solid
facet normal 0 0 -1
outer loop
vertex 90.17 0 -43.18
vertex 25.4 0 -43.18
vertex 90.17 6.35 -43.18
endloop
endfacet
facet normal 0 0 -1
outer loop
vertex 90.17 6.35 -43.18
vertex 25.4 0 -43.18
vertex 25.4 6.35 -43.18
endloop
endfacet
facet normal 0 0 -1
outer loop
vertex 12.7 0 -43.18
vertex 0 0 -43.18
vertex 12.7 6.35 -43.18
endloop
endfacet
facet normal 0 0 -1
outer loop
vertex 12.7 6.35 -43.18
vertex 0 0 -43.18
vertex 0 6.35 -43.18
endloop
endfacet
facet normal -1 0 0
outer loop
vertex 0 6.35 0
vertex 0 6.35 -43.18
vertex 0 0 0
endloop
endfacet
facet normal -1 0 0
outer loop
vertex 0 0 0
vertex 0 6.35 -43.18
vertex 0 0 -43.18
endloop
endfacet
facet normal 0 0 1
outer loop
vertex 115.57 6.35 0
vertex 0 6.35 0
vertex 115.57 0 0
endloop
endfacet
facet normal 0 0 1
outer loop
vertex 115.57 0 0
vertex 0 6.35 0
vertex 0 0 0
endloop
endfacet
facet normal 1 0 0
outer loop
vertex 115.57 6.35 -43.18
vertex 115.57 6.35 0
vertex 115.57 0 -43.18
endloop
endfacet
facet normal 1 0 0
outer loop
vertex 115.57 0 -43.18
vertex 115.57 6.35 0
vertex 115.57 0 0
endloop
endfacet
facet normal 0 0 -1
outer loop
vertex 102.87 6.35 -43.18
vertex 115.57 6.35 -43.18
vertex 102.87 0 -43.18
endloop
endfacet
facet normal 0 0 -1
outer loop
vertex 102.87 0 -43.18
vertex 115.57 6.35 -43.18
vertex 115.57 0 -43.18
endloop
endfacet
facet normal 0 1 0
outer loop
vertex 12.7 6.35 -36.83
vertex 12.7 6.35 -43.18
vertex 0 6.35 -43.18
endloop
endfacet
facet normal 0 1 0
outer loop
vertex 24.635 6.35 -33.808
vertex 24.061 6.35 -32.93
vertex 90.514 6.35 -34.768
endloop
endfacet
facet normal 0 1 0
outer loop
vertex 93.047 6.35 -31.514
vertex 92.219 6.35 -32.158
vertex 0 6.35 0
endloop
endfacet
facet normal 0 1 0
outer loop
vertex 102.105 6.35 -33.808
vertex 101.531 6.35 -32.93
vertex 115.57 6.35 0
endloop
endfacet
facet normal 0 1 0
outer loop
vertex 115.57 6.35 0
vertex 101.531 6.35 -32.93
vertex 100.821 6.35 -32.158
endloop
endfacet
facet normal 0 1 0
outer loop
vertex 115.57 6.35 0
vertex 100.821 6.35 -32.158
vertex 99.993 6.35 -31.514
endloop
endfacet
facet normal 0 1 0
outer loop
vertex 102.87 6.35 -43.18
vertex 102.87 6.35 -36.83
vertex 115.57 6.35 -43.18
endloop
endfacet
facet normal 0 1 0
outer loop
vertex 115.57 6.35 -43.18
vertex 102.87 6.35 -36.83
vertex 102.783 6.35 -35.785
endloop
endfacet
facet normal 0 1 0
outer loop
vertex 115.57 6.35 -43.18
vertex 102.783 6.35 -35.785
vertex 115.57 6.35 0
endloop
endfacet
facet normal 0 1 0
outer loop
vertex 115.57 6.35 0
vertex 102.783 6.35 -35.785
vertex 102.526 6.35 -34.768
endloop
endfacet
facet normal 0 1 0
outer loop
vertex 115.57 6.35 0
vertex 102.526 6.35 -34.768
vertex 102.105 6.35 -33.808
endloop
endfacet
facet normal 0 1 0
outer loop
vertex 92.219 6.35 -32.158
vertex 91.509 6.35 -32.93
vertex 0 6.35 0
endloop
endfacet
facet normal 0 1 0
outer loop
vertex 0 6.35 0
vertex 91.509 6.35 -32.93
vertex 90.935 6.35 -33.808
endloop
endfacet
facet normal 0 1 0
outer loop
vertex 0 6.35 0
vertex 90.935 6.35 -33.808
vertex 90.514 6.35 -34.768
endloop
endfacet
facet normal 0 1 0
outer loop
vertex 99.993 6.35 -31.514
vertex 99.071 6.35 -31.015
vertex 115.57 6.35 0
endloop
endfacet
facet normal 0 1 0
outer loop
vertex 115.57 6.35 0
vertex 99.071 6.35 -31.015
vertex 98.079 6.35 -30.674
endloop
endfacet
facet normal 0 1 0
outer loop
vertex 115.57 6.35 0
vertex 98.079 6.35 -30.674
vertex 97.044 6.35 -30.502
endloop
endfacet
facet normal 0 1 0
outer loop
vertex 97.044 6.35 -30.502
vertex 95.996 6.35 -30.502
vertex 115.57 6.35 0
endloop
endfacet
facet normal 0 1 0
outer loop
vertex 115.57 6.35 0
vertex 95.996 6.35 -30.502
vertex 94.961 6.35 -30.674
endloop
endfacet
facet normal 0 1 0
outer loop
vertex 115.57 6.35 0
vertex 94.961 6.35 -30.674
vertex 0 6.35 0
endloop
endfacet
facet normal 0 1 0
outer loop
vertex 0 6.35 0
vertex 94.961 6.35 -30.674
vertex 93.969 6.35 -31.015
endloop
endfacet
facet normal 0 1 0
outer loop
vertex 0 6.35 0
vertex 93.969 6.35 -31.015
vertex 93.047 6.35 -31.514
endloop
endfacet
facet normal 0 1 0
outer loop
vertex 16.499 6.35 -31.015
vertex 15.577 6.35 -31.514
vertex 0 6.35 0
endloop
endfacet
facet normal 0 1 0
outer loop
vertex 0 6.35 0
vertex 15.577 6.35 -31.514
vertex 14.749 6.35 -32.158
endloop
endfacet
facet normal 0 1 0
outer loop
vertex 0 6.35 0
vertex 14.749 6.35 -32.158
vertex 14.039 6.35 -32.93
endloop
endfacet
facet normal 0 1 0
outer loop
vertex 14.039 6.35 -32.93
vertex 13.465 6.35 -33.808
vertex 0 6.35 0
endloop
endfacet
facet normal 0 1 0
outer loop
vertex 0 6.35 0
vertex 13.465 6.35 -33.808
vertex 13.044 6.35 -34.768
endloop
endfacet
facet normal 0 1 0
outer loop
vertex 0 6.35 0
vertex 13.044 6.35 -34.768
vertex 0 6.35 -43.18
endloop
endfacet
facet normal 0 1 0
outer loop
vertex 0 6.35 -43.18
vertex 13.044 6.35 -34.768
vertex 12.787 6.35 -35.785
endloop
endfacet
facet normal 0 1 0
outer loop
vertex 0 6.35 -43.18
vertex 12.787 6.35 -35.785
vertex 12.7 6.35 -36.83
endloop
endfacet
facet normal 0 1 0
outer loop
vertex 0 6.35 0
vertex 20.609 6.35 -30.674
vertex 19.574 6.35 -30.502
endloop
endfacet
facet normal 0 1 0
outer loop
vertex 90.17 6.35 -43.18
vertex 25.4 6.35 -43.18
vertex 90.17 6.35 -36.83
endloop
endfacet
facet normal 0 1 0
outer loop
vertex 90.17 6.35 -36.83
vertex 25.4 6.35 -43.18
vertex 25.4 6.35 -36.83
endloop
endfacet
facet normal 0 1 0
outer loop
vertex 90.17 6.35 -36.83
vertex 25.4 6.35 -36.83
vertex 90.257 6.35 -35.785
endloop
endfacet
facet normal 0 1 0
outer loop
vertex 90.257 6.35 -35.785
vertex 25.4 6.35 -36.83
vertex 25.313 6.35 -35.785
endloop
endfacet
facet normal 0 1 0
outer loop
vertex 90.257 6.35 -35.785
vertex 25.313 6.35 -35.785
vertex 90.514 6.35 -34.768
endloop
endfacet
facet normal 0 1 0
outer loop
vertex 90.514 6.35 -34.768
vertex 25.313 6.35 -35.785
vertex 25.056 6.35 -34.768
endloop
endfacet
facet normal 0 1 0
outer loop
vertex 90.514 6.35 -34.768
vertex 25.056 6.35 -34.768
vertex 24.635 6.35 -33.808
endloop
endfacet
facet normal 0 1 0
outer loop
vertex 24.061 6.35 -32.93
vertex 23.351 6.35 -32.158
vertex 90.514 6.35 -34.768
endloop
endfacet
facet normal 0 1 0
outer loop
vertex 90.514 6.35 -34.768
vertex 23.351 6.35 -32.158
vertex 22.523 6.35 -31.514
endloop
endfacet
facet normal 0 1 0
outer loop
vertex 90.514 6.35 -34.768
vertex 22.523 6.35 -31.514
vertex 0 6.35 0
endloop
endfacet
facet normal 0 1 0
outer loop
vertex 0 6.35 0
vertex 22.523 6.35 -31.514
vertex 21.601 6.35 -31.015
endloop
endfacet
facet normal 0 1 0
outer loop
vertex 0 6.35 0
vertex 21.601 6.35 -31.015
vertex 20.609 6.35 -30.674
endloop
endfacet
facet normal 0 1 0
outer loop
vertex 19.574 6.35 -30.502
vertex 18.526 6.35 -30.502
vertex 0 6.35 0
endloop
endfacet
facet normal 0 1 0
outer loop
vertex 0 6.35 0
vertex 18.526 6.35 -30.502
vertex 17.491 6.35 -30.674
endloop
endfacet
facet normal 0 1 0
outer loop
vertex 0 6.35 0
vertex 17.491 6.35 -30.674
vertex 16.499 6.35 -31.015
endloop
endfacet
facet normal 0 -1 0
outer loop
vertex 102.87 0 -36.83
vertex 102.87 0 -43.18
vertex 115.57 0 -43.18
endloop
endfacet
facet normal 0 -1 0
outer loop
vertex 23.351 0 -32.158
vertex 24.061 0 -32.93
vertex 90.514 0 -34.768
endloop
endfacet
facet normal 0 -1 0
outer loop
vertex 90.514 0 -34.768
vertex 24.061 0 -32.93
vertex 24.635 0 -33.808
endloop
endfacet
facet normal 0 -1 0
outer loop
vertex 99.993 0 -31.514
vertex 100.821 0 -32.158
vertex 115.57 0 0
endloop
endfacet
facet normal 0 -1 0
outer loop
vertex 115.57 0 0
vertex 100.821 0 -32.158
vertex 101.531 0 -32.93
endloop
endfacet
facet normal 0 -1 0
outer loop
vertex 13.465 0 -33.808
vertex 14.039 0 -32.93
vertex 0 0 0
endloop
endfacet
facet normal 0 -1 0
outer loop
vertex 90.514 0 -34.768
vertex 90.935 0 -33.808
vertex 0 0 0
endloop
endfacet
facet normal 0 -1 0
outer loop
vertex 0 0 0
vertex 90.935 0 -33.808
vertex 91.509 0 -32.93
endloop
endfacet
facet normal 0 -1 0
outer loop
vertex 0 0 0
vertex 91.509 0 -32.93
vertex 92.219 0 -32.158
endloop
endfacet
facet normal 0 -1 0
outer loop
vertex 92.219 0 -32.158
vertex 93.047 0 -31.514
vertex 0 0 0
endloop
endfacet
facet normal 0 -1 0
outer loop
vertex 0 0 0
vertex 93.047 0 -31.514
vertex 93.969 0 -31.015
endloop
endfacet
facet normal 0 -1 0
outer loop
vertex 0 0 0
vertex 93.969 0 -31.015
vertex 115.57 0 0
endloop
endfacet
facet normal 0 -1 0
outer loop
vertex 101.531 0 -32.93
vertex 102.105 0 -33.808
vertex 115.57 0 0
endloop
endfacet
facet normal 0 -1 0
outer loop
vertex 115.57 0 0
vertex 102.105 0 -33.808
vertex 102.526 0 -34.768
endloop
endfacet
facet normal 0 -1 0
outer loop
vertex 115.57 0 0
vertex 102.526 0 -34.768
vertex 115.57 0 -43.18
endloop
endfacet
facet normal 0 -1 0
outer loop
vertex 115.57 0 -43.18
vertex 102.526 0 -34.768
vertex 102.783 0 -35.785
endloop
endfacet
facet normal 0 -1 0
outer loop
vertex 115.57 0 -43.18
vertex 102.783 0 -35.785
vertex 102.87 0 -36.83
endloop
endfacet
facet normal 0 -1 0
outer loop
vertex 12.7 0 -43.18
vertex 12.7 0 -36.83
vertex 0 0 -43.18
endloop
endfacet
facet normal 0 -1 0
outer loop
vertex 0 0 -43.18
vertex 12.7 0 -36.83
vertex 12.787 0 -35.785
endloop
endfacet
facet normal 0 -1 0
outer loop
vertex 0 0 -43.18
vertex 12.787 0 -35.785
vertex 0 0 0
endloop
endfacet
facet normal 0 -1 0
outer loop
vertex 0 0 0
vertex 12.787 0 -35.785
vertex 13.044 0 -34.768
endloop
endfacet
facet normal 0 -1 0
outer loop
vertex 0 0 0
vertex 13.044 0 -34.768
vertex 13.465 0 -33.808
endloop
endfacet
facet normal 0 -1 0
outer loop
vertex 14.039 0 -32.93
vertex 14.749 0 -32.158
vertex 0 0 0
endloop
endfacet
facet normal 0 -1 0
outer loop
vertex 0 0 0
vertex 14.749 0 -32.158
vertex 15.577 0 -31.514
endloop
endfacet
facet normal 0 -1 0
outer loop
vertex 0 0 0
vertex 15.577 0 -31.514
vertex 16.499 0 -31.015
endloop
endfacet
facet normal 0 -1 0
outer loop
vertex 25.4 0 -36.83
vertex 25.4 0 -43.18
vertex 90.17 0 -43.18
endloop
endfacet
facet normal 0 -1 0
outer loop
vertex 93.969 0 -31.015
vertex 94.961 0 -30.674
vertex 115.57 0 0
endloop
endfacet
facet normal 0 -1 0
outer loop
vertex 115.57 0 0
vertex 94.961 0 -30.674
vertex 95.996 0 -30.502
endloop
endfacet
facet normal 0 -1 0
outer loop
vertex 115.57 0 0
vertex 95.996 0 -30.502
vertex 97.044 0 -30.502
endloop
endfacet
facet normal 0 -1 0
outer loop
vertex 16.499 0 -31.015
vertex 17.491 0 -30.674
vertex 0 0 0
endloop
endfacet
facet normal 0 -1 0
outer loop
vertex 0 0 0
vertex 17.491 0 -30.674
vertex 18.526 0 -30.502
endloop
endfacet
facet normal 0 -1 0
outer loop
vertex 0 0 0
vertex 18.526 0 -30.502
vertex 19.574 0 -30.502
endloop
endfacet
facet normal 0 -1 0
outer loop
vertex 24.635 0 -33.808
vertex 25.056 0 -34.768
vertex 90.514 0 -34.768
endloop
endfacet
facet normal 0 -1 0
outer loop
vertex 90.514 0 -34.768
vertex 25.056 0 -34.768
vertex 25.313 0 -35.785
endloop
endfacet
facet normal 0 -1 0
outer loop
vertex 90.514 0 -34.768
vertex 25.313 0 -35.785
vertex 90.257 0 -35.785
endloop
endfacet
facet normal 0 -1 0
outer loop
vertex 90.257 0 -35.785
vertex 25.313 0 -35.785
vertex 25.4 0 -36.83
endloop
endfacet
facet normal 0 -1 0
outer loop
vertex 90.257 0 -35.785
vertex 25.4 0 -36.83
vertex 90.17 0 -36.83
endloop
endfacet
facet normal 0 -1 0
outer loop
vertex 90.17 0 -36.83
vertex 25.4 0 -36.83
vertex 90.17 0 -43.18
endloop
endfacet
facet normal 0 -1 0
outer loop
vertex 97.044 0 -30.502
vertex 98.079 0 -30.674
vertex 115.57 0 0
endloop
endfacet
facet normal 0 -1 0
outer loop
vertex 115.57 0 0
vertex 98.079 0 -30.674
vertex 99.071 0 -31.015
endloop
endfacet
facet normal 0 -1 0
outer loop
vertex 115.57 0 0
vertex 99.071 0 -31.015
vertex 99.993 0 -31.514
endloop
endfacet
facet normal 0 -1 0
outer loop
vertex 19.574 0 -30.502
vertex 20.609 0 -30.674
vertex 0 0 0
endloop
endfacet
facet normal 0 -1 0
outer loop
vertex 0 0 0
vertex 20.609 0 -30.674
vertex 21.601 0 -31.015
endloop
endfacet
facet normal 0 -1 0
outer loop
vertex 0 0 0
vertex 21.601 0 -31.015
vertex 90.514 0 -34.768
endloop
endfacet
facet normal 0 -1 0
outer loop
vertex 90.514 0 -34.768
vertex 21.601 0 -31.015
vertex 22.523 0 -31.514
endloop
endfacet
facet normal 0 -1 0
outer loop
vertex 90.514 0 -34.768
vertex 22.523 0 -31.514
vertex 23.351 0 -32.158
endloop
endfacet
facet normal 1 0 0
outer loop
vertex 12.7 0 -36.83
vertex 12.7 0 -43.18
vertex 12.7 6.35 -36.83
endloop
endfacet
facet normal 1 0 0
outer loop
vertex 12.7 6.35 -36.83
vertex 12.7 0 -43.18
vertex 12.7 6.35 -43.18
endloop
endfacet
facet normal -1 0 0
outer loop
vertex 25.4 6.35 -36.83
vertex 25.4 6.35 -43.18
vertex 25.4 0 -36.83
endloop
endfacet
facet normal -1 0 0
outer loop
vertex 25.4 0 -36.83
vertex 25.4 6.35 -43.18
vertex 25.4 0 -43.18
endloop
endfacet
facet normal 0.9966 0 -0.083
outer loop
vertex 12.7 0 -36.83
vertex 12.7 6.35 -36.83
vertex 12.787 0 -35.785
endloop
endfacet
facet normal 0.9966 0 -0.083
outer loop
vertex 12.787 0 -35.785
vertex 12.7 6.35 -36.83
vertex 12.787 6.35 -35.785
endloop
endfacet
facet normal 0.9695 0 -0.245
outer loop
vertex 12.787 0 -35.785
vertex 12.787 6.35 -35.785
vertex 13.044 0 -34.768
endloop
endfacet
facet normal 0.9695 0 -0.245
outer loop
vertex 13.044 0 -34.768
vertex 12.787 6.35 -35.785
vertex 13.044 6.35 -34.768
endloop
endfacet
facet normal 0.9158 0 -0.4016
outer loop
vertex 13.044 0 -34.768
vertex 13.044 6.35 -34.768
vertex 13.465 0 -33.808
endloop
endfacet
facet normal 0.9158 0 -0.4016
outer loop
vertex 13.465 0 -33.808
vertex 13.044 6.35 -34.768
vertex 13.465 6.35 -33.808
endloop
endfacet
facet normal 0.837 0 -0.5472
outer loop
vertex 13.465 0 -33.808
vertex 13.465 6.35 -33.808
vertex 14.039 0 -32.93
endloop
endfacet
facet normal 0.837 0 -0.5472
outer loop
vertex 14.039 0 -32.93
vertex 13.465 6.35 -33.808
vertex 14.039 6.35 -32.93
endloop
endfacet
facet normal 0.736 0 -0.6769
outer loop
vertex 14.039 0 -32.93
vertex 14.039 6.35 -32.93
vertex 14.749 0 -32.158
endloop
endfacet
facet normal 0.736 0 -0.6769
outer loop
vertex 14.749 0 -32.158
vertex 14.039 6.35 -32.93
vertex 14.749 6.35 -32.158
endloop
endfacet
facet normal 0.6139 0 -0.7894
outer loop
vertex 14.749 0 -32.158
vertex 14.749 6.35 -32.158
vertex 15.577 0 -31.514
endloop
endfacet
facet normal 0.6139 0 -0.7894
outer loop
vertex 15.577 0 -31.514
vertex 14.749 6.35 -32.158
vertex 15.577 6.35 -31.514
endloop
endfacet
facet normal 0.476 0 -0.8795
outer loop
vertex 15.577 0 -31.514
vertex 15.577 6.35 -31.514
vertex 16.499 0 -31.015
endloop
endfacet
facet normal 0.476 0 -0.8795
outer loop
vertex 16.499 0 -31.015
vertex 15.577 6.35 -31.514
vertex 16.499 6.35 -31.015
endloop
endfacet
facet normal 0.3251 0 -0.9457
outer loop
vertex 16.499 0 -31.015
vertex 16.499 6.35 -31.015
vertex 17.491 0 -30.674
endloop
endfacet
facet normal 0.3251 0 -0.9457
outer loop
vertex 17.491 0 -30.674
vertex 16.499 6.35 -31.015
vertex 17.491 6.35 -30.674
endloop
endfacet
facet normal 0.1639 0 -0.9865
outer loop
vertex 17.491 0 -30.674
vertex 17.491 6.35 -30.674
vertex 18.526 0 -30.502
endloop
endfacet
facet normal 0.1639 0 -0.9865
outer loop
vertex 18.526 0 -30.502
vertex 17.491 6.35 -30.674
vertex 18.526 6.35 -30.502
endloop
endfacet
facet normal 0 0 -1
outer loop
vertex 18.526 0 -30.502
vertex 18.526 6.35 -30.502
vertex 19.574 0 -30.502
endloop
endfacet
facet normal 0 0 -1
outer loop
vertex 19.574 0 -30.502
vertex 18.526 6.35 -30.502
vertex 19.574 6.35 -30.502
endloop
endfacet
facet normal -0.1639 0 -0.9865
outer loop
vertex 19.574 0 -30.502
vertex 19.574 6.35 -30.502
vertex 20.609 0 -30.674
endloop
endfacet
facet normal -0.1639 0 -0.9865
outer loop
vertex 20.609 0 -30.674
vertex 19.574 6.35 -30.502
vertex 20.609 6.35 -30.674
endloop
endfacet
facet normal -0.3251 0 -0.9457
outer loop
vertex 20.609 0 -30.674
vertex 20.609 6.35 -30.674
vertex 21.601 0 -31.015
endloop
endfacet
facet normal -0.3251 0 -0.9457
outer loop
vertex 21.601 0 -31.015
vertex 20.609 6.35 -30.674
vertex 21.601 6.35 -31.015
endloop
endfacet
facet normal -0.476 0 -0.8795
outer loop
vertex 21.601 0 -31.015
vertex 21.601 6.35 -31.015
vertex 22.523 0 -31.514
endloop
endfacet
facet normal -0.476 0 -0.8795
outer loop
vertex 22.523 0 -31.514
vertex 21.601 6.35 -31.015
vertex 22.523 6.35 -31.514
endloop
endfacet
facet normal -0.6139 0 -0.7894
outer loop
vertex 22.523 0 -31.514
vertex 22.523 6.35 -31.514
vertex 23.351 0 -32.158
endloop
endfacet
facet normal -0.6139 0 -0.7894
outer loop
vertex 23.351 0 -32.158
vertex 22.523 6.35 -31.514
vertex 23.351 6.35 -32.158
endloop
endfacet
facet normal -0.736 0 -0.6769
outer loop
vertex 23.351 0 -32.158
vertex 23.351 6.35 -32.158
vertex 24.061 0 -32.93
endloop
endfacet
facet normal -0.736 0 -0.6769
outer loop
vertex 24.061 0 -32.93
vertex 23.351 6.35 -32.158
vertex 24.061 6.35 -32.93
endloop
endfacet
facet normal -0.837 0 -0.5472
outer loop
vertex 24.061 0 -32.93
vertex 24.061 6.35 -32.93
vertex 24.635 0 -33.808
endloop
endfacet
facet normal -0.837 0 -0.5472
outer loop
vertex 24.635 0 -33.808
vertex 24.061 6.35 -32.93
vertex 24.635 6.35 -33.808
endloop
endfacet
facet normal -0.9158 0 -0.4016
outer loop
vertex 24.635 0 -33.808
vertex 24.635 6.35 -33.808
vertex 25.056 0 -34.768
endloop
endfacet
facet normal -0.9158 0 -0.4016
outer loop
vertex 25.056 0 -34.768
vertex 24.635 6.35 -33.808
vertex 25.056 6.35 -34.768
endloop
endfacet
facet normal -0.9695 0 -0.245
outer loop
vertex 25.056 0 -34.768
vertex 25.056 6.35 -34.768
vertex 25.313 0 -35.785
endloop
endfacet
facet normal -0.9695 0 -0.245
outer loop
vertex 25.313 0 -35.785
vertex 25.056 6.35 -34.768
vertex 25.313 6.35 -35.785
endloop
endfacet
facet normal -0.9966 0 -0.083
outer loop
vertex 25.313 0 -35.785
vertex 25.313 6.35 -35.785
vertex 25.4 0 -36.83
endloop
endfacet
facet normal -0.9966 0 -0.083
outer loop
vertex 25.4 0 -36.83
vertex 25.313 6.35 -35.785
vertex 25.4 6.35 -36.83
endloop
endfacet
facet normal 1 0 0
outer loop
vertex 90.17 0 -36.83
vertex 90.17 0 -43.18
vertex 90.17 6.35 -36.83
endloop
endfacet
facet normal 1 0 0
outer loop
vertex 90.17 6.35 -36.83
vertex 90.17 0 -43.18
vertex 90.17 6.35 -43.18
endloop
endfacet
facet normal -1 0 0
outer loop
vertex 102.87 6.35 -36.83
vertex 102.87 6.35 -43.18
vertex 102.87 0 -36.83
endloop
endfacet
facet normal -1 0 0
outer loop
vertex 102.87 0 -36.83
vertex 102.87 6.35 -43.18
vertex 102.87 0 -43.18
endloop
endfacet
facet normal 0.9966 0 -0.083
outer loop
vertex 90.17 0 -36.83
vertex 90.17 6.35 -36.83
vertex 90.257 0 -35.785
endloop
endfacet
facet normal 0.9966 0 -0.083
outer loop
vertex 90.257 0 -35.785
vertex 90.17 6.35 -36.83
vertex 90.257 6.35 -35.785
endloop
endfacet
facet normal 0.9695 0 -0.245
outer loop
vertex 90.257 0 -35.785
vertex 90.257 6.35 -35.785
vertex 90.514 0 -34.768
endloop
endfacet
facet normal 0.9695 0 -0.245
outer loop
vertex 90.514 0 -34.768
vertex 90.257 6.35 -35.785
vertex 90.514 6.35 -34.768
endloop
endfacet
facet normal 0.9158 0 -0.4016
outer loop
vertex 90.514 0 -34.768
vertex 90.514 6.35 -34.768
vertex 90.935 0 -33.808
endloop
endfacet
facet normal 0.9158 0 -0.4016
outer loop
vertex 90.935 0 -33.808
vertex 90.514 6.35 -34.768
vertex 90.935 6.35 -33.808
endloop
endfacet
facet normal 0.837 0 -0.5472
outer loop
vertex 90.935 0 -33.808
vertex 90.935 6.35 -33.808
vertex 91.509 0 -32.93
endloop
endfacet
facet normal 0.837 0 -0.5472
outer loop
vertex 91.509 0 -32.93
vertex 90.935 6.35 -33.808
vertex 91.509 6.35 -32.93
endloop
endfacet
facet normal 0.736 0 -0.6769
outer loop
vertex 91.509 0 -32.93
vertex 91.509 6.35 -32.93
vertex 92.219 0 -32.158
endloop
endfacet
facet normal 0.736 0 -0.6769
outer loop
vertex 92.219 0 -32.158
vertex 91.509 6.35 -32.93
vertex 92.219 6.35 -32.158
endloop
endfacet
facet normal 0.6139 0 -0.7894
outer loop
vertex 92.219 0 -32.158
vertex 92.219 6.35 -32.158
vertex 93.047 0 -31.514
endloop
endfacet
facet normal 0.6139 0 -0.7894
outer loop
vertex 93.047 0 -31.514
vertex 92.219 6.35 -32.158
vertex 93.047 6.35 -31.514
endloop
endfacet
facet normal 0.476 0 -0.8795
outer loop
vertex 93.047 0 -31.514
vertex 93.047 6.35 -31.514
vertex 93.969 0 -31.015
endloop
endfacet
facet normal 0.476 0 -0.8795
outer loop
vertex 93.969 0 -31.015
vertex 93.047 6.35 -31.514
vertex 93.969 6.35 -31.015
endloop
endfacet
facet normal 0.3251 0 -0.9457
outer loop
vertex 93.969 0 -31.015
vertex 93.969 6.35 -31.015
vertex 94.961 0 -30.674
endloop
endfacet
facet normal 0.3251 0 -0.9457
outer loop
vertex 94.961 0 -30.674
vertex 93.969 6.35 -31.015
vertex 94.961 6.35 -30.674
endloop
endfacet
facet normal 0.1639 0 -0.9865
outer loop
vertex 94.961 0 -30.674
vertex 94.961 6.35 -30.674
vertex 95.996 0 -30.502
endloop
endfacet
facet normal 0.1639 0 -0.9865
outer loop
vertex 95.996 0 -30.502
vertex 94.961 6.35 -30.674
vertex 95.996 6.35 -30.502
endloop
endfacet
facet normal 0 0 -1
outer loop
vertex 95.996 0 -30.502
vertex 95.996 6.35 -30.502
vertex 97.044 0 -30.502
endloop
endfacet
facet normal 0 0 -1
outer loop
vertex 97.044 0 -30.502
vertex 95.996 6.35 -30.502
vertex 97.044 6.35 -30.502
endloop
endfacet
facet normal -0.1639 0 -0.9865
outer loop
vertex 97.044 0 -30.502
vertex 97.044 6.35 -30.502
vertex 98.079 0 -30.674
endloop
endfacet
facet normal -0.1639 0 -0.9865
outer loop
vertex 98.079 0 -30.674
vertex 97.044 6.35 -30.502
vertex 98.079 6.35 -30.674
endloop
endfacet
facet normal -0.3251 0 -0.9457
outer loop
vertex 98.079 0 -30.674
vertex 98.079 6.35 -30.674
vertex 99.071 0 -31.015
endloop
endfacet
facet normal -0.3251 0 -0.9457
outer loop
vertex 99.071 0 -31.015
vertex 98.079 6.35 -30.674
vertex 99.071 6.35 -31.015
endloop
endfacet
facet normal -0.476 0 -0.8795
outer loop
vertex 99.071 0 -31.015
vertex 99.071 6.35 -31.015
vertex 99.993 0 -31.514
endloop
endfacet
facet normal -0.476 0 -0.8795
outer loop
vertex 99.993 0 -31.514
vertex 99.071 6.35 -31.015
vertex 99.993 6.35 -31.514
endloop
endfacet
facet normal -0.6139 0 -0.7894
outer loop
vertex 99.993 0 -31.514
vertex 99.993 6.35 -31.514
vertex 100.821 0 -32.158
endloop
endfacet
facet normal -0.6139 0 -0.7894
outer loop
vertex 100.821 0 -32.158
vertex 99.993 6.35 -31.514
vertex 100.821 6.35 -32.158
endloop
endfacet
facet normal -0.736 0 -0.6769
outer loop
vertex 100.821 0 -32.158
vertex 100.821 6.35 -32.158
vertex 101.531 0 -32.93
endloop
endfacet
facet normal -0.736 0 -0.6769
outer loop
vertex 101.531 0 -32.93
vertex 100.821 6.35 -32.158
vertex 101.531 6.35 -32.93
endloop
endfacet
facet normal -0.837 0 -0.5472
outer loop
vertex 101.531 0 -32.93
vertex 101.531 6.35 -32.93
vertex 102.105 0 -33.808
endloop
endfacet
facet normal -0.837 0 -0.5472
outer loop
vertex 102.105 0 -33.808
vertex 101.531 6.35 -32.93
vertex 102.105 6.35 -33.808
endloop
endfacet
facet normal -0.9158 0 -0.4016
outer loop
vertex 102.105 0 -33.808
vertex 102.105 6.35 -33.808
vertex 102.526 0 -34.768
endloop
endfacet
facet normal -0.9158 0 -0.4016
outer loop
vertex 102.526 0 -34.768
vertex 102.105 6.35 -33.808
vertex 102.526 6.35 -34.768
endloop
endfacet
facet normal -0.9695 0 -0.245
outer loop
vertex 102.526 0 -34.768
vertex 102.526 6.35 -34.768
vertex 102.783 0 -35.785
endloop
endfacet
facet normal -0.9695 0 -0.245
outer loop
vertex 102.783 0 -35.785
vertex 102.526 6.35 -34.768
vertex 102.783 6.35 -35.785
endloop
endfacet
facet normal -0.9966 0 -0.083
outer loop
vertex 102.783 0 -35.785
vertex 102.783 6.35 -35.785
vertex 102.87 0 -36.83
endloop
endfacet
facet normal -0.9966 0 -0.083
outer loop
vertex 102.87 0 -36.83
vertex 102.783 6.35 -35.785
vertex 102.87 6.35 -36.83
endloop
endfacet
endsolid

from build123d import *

# Parameters (mm, degrees)
SKETCH1_W           = 115.57
SKETCH1_H           = 43.18
BOSS_EXTRUDE1_DEPTH = 6.35
CUT_EXTRUDE1_DEPTH  = 7.35


with BuildPart() as part:
    # Sketch1 → Boss-Extrude1 (new body)
    with BuildSketch(Plane(origin=(0, 0, 0), x_dir=(1, 0, 0), z_dir=(0, 1, 0))):
        with Locations((57.785, 21.59)):
            Rectangle(SKETCH1_W, SKETCH1_H)
    extrude(amount=BOSS_EXTRUDE1_DEPTH)

    # Sketch2 → Cut-Extrude1 (cut, through all)
    with BuildSketch(Plane(origin=(0, 6.35, 0), x_dir=(1, 0, 0), z_dir=(0, 1, 0))):
        with BuildLine():
            Line((25.4, 52.705), (25.4, 36.83))
            ThreePointArc((25.4, 36.83), (19.05, 30.48), (12.7, 36.83))
            Line((12.7, 36.83), (12.7, 52.705))
            Line((12.7, 52.705), (25.4, 52.705))
        make_face()
        with BuildLine():
            Line((102.87, 52.705), (90.17, 52.705))
            Line((90.17, 52.705), (90.17, 36.83))
            ThreePointArc((90.17, 36.83), (96.52, 30.48), (102.87, 36.83))
            Line((102.87, 36.83), (102.87, 52.705))
        make_face()
    extrude(amount=-CUT_EXTRUDE1_DEPTH, mode=Mode.SUBTRACT)


solid = part.part
